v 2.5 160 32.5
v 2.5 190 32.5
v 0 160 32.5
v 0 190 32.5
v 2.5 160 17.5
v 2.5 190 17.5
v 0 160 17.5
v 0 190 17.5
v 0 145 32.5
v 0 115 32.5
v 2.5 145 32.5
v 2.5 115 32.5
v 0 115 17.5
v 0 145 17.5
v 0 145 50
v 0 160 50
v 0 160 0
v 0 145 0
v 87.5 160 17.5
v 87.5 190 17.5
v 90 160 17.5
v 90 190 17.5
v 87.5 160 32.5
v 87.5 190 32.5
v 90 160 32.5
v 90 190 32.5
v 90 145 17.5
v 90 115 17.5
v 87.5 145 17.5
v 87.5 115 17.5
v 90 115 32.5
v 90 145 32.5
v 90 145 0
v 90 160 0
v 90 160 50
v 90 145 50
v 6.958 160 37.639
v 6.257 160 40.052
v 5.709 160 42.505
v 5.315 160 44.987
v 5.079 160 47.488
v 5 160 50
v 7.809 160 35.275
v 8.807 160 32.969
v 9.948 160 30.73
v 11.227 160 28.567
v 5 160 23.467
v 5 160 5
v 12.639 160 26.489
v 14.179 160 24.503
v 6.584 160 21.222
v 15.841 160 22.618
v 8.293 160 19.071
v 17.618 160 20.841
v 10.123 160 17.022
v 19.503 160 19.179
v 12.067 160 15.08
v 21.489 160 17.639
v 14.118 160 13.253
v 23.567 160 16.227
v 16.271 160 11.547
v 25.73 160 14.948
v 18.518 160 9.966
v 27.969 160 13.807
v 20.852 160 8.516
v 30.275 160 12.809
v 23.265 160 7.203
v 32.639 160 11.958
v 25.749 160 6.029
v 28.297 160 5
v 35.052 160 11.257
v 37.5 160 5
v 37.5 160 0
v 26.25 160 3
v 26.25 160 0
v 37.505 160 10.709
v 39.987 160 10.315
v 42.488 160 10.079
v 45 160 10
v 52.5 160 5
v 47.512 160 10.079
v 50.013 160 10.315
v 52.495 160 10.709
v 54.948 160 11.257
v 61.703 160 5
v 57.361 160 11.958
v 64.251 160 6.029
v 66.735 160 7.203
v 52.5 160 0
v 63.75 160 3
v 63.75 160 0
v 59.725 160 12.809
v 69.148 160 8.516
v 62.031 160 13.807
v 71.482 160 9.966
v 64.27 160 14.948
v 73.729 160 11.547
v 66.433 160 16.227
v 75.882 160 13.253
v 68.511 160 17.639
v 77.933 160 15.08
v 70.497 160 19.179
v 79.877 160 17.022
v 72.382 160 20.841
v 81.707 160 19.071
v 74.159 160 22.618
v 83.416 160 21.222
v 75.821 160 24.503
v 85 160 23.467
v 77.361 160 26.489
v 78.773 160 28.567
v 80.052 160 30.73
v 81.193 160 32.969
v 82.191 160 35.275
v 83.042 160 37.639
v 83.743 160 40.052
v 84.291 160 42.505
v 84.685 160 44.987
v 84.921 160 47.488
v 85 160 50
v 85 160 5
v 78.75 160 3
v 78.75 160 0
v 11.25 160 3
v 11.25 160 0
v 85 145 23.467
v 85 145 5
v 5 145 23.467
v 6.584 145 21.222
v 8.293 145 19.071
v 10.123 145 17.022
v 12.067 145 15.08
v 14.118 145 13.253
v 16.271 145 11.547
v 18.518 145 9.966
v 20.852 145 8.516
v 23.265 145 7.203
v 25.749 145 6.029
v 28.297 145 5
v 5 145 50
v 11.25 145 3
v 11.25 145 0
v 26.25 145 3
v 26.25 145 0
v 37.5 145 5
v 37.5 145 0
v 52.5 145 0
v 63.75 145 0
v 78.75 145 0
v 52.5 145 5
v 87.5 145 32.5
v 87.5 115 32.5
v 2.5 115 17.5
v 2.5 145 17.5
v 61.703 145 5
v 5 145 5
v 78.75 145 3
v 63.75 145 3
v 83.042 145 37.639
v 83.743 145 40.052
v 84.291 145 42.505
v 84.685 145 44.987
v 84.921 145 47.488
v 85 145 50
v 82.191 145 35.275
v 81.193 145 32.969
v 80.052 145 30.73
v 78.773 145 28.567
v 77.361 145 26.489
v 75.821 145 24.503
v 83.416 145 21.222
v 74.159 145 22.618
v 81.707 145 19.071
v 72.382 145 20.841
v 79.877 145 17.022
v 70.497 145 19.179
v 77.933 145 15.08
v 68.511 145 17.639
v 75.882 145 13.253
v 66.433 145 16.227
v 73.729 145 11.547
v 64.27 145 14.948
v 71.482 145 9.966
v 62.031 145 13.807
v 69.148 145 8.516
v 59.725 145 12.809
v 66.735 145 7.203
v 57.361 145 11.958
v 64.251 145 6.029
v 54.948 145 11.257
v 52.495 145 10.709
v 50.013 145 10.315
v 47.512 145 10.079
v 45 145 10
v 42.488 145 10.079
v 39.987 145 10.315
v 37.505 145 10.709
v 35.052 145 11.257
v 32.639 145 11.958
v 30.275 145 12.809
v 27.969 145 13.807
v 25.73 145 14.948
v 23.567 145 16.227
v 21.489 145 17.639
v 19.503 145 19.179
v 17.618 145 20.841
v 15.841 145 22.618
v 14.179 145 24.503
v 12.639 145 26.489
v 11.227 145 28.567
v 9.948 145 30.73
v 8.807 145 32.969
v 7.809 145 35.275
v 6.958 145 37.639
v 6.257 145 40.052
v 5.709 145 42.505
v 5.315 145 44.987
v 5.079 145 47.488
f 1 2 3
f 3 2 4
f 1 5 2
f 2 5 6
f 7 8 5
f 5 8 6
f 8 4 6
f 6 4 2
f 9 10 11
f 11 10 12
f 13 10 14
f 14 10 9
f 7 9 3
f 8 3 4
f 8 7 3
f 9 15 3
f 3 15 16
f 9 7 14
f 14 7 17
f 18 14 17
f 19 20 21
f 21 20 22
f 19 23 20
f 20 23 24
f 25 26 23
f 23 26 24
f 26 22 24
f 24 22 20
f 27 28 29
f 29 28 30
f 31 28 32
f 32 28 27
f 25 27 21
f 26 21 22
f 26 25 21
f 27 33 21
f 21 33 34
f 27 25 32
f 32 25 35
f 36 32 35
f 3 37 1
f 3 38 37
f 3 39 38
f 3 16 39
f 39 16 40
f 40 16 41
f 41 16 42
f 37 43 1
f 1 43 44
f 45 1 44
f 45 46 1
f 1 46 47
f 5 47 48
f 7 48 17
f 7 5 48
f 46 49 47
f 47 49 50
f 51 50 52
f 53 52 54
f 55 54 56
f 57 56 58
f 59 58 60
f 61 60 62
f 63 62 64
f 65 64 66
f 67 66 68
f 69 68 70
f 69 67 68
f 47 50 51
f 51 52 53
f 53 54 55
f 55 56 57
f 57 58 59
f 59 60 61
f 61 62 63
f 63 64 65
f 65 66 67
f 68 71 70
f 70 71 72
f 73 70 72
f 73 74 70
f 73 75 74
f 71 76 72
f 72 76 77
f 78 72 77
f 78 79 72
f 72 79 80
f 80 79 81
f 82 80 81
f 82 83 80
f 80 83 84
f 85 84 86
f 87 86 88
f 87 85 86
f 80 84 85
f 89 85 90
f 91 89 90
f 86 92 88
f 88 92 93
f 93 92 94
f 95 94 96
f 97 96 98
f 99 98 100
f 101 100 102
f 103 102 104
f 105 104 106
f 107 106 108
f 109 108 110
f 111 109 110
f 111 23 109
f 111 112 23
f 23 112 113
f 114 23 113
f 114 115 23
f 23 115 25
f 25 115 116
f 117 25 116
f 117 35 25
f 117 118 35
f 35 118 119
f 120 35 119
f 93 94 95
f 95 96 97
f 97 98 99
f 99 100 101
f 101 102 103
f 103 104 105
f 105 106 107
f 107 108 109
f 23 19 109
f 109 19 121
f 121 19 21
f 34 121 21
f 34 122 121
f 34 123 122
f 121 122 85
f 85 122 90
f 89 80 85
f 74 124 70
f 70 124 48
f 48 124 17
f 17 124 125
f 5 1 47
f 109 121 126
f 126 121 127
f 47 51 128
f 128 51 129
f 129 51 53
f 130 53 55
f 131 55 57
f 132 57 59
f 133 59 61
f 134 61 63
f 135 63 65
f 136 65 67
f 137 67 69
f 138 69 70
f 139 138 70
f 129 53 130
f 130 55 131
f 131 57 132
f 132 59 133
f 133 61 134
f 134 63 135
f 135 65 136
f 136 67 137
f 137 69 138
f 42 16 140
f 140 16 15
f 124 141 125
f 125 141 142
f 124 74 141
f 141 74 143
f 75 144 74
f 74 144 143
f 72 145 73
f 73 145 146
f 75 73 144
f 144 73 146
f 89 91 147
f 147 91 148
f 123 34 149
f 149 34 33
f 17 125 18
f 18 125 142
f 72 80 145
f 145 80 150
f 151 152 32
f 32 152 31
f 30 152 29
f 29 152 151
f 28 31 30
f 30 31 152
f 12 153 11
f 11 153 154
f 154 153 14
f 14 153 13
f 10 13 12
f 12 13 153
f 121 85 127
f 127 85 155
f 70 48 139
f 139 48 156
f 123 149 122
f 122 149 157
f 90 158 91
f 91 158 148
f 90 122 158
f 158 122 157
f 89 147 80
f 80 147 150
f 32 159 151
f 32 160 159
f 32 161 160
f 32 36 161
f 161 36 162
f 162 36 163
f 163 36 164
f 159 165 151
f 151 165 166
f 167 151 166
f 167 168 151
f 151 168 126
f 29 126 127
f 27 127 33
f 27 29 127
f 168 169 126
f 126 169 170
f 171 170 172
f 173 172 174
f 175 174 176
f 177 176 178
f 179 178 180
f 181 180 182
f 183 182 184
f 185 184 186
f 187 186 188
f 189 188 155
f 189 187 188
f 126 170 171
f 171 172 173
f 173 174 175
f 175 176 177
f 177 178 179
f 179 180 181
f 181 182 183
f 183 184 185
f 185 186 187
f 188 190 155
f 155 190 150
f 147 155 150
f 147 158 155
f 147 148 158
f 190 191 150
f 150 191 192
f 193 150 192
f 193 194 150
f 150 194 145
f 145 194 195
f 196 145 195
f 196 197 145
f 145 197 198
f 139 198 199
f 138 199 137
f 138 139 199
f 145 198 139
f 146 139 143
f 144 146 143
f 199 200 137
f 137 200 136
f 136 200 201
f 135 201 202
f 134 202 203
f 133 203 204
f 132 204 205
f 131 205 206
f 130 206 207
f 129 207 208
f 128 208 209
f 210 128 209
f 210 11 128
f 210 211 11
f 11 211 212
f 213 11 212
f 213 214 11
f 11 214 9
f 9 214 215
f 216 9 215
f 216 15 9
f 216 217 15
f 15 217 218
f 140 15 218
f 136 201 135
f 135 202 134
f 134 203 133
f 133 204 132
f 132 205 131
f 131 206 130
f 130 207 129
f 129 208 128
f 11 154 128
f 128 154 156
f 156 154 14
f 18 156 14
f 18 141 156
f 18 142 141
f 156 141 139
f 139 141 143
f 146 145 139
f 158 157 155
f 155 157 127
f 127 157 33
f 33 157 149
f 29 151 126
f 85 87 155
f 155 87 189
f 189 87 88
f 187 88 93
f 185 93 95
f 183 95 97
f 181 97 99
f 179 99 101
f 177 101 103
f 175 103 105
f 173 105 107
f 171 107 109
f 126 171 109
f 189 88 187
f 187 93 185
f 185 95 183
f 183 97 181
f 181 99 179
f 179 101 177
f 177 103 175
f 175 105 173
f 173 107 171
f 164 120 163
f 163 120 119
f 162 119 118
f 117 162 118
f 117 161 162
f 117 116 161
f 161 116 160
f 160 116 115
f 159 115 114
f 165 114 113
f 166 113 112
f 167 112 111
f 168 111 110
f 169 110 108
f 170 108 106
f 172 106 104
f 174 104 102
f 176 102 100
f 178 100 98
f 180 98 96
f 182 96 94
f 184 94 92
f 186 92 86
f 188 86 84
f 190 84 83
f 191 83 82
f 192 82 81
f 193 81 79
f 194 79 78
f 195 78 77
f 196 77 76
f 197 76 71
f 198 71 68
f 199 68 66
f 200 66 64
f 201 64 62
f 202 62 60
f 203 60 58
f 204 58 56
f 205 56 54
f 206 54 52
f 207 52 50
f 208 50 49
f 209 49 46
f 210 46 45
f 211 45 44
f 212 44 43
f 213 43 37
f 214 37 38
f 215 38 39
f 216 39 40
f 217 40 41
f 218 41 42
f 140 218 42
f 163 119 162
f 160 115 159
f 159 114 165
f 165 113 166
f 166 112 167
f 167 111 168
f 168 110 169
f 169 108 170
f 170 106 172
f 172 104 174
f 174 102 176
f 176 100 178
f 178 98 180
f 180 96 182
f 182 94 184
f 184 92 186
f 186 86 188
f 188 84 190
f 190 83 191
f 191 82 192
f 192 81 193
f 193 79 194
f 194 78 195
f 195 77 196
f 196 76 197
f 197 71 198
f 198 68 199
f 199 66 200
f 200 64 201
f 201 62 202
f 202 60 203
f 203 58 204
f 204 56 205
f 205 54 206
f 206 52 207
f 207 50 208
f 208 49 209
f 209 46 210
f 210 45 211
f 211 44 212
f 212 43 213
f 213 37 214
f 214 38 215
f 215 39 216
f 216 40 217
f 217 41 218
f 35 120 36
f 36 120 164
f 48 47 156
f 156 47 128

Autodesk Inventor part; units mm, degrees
ref_plane "YZ Plane" through (0, 0, 0) normal (1, 0, 0) x (0, 1, 0)
ref_plane "XZ Plane" through (0, 0, 0) normal (0, 1, 0) x (-1, 0, 0)
ref_plane "XY Plane" through (0, 0, 0) normal (0, 0, 1) x (1, 0, 0)
sketch "スケッチ1" plane through (0, 0, 0) normal (0, 1, 0) x (-1, 0, 0)
  line L0 (0, 0) -> (-90, 0)
  line L1 (-90, 0) -> (-90, 50)
  line L2 (0, 50) -> (0, 0)
  line L3 (0, 0) -> (-5, 0)
  line L4 (-5, 0) -> (-5, 50)
  line L5 (-5, 0) -> (-90, 0)
  line L6 (-90, 0) -> (-85, 0)
  line L7 (-85, 0) -> (-85, 50)
  arc A0 (-85, 50) -> (-5, 50) centre (-45, 50) ccw
  line L8 (0, 0) -> (0, 10)
  line L9 (0, 10) -> (-90, 10)
  circle A1 centre (-45, 50) radius 45
  line L10 (-90, 5) -> (0, 5)
  line L11 (-90, 50) -> (-85, 50)
  line L12 (-5, 50) -> (0, 50)
  line L13 (0, 0) -> (-90, 0)
  line L14 (-90, 0) -> (-90, 5)
  line L15 (-90, 5) -> (0, 5)
  line L16 (0, 5) -> (0, 0)
  dimension "d0" = 90
  dimension "d1" = 50
  dimension "d2" = 5
  dimension "d3" = 85
  dimension "d4" = 5
  dimension "d5" = 80
  dimension "d6" = 10
  dimension "d7" = 90
extrude "押し出し1" add sketch "スケッチ1" along normal blind 230 contours L0 L4 L10 L2 | L0 L7 L10 L4 | L10 L4 L9 L2 | L0 L1 L10 L7 | L10 A1 L9 L4 | L9 L4 A1 L2 | L10 L1 L9 L7 | L7 L9 A1 L10 | L9 A1 L4 | A1 L9 | A1 L4 L12 | L9 L1 A1 L7 | L7 A1 L9 | A1 L9 A0 L4 | A1 L7 A0 L9 | L11 L7 A1
sketch "スケッチ2" plane through (0, 0, 0) normal (0, -1, 0) x (1, 0, 0)
  line L0 (0, 0) -> (0, 50) projected
  line L1 (90, 0) -> (0, 0) projected
  line L2 (90, 50) -> (90, 0) projected
  line L3 (85, 50) -> (90, 50) projected
  arc A0 (5, 50) -> (85, 50) centre (45, 50) ccw projected
  line L4 (0, 50) -> (5, 50) projected
  arc A1 (5, 23.467) -> (85, 23.467) centre (45, 50) ccw
  line L5 (0, 5) -> (90, 5)
  line L6 (5, 23.467) -> (5, 5)
  line L7 (85, 23.467) -> (85, 5)
  dimension "d29" = 48
extrude "押し出し2" cut sketch "スケッチ2" against normal blind 225 contours L6 A1 L5 | L5 A1 L7
sketch "スケッチ3" plane through (0, 230, 0) normal (0, 1, 0) x (1, 0, 0)
  arc A0 (85, -50) -> (5, -50) centre (45, -50) ccw projected
  line L0 (90, -50) -> (90, 0) projected
  line L1 (0, -50) -> (5, -50) projected
  arc A1 (85, -50) -> (5, -50) centre (45, -50) ccw
  line L2 (5, -50) -> (85, -50)
extrude "押し出し3" add sketch "スケッチ3" against normal blind 5
sketch "スケッチ4" plane through (90, 0, 50) normal (1, 0, 0) x (0, 0, -1)
  line L0 (0, 0) -> (50, 0) projected
  line L1 (0, 0) -> (0, 230) projected
  line L2 (25, 0) -> (25, 65)
  line L3 (25, 65) -> (25, 75)
  line L4 (25, 75) -> (25, 215)
  line L5 (25, 215) -> (25, 225)
  line L6 (0, 65) -> (40, 65)
  line L7 (40, 65) -> (40, 75)
  line L8 (40, 75) -> (0, 75)
  line L9 (0, 75) -> (0, 65)
  line L10 (0, 215) -> (40, 215)
  line L11 (40, 215) -> (40, 225)
  line L12 (40, 225) -> (0, 225)
  line L13 (0, 225) -> (0, 215)
  dimension "d16" = 65
  dimension "d17" = 10
  dimension "d18" = 140
  dimension "d19" = 10
  dimension "d20" = 40
extrude "押し出し4" cut sketch "スケッチ4" against normal blind 90 contours L1 L8 L3 L6 | L3 L8 L7 L6 | L1 L12 L5 L10 | L5 L12 L11 L10
sketch "スケッチ6" plane through (90, 0, 50) normal (1, 0, 0) x (0, 0, -1)
  line L0 (0, 230) -> (50, 230) projected
  line L1 (50, 230) -> (37.5, 251.6506)
  line L2 (50, 230) -> (110, 230) construction
  line L3 (0, 230) -> (37.5, 251.6506)
  line L4 (0, 230) -> (43.3013, 230) construction
  dimension "d32" = 120
  dimension "d33" = 30
extrude "押し出し6" add sketch "スケッチ6" against normal blind 90
sketch "スケッチ9" plane through (0, 0, 0) normal (-1, 0, 0) x (0, 0, 1)
  line L0 (10, 225) -> (50, 225) projected
  line L1 (50, 225) -> (50, 230) projected
  line L2 (50, 230) -> (12.5, 251.6506) projected
  line L3 (12.5, 251.6506) -> (0, 230) projected
  line L4 (0, 0) -> (0, 230) projected
  line L5 (0, 0) -> (50, 0) projected
  line L6 (50, 0) -> (50, 65) projected
  line L7 (50, 65) -> (10, 65) projected
  line L8 (10, 65) -> (10, 75) projected
  line L9 (10, 75) -> (50, 75) projected
  line L10 (50, 75) -> (50, 215) projected
  line L11 (50, 215) -> (10, 215) projected
  line L12 (10, 215) -> (10, 225) projected
  line L13 (12.5, 251.6506) -> (0, 230)
  line L14 (0, 230) -> (-132.7906, 0)
  line L15 (0, 145) -> (-49.0748, 145)
  line L16 (0, 115) -> (-66.3953, 115)
  dimension "d45" = 30
sketch "スケッチ10" plane through (0, 0, 0) normal (-1, 0, 0) x (0, 0, 1)
  line L0 (10, 225) -> (50, 225) projected
  line L1 (50, 225) -> (50, 230) projected
  line L2 (50, 230) -> (12.5, 251.6506) projected
  line L3 (12.5, 251.6506) -> (0, 230) projected
  line L4 (0, 0) -> (0, 230) projected
  line L5 (0, 0) -> (50, 0) projected
  line L6 (50, 0) -> (50, 65) projected
  line L7 (50, 65) -> (10, 65) projected
  line L8 (10, 65) -> (10, 75) projected
  line L9 (10, 75) -> (50, 75) projected
  line L10 (50, 75) -> (50, 215) projected
  line L11 (50, 215) -> (10, 215) projected
  line L12 (10, 215) -> (10, 225) projected
  line L13 (12.5, 251.6506) -> (-87.5, 78.4456)
  line L14 (-87.5, 78.4456) -> (50, 0)
sketch "スケッチ12" plane through (90, 0, 50) normal (1, 0, 0) x (0, 0, -1)
  line L0 (50, 0) -> (50, 230) projected
  line L1 (40, 225) -> (40, 215) projected
  line L2 (0, 215) -> (0, 75)
  line L3 (0, 145) -> (50, 145)
  line L4 (32.5, 175) -> (17.5, 175)
  line L5 (17.5, 175) -> (17.5, 115)
  line L6 (17.5, 115) -> (32.5, 115)
  line L7 (32.5, 115) -> (32.5, 175)
  line L8 (32.5, 175) -> (17.5, 115) construction
  line L9 (17.5, 175) -> (32.5, 115) construction
  line L10 (17.5, 145) -> (32.5, 145)
  line L11 (32.5, 145) -> (32.5, 115)
  line L12 (32.5, 115) -> (17.5, 115)
  line L13 (17.5, 115) -> (17.5, 145)
  point P0 (25, 145)
  dimension "d59" = 15
  dimension "d60" = 60
extrude "押し出し8" cut sketch "スケッチ12" against normal blind 2.5 contours L3 L7 L6 L5
sketch "スケッチ13" plane through (0, 0, 0) normal (-1, 0, 0) x (0, 0, 1)
  line L0 (0, 0) -> (0, 230) projected
  line L1 (50, 75) -> (50, 215) projected
  line L2 (50, 145) -> (0, 145)
  line L3 (17.5, 175) -> (32.5, 175)
  line L4 (32.5, 175) -> (32.5, 115)
  line L5 (32.5, 115) -> (17.5, 115)
  line L6 (17.5, 115) -> (17.5, 175)
  line L7 (17.5, 175) -> (32.5, 115) construction
  line L8 (32.5, 175) -> (17.5, 115) construction
  line L9 (17.5, 145) -> (32.5, 145)
  line L10 (32.5, 145) -> (32.5, 115)
  line L11 (32.5, 115) -> (17.5, 115)
  line L12 (17.5, 115) -> (17.5, 145)
  point P0 (25, 145)
  dimension "d63" = 15
  dimension "d64" = 60
extrude "押し出し9" cut sketch "スケッチ13" against normal blind 2.5 contours L4 L5 L6 L2
sketch "スケッチ14" plane through (90, 0, 0) normal (0, 0, -1) x (-1, 0, 0)
  line L0 (90, 0) -> (90, 230) projected
  line L1 (0, 0) -> (0, 230) projected
  line L2 (0, 145) -> (90, 145)
  line L3 (37.5, 170) -> (52.5, 170)
  line L4 (52.5, 170) -> (52.5, 120)
  line L5 (52.5, 120) -> (37.5, 120)
  line L6 (37.5, 120) -> (37.5, 170)
  line L7 (37.5, 170) -> (52.5, 120) construction
  line L8 (52.5, 170) -> (37.5, 120) construction
  line L9 (37.5, 145) -> (52.5, 145)
  line L10 (52.5, 145) -> (52.5, 170)
  line L11 (52.5, 170) -> (37.5, 170)
  line L12 (37.5, 170) -> (37.5, 145)
  point P0 (45, 145)
  dimension "d67" = 15
  dimension "d70" = 25
extrude "押し出し10" cut sketch "スケッチ14" against normal blind 5 contours L6 L3 L4 L2
sketch "スケッチ16" plane through (90, 0, 0) normal (0, 0, -1) x (-1, 0, 0)
  line L0 (52.5, 170) -> (52.5, 145) projected
  line L1 (52.5, 145) -> (37.5, 145) projected
  line L2 (37.5, 145) -> (37.5, 170) projected
  line L3 (90, 0) -> (90, 230) projected
  line L4 (0, 0) -> (0, 230) projected
  line L5 (0, 145) -> (90, 145)
  line L6 (0, 160) -> (37.5, 157.5)
  line L7 (52.5, 157.5) -> (90, 157.5)
  line L8 (18.75, 158.75) -> (18.75, 145)
  line L9 (71.25, 145) -> (71.25, 157.5)
  line L10 (11.25, 175) -> (26.25, 175)
  line L11 (26.25, 175) -> (26.25, 115)
  line L12 (26.25, 115) -> (11.25, 115)
  line L13 (11.25, 115) -> (11.25, 175)
  line L14 (11.25, 175) -> (26.25, 115) construction
  line L15 (26.25, 175) -> (11.25, 115) construction
  line L16 (11.25, 115) -> (26.25, 115)
  line L17 (26.25, 115) -> (26.25, 175)
  line L18 (26.25, 175) -> (11.25, 175)
  line L19 (11.25, 175) -> (11.25, 115)
  line L20 (45, 145) -> (45, 125)
  line L21 (78.75, 175) -> (63.75, 175)
  line L22 (63.75, 115) -> (78.75, 115)
  line L23 (78.75, 175) -> (78.75, 115)
  line L24 (63.75, 115) -> (63.75, 175)
  line L25 (63.75, 175) -> (78.75, 175)
  line L26 (78.75, 175) -> (78.75, 115)
  line L27 (78.75, 115) -> (63.75, 115)
  line L28 (63.75, 115) -> (63.75, 175)
  line L29 (11.25, 115) -> (26.25, 115)
  line L30 (26.25, 115) -> (26.25, 175)
  line L31 (26.25, 175) -> (11.25, 175)
  line L32 (11.25, 175) -> (11.25, 115)
  dimension "d71" = 15
  dimension "d72" = 60
  dimension "d73" = 20
extrude "押し出し11" cut sketch "スケッチ16" against normal blind 3 contours L24 L21 L23 L7 | L7 L9 L5 L24 | L5 L23 L22 L24 | L7 L23 L5 L9 | L11 L12 L13 L5 | L5 L8 L6 L11 | L6 L13 L10 L11 | L5 L13 L6 L8
sketch "スケッチ17" plane through (37.5, 145, 0) normal (0, 1, 0) x (1, 0, 0)
  line L0 (-57.7643, 16.522) -> (69.053, 16.522)
  line L1 (69.053, 16.522) -> (69.053, -65.9751)
  line L2 (69.053, -65.9751) -> (-57.7643, -65.9751)
  line L3 (-57.7643, -65.9751) -> (-57.7643, 16.522)
  point P0 (-37.5, 0)
extrude "押し出し12" cut sketch "スケッチ17" against normal blind 180
sketch "スケッチ18" plane through (0, 215, 10) normal (-1, 0, 0) x (0, 0, 1)
  line L0 (-10, -70) -> (40, -70) projected
  line L1 (7.5, -40) -> (22.5, -40)
  line L2 (22.5, -40) -> (22.5, -100)
  line L3 (22.5, -100) -> (7.5, -100)
  line L4 (7.5, -100) -> (7.5, -40)
  line L5 (7.5, -40) -> (22.5, -100) construction
  line L6 (22.5, -40) -> (7.5, -100) construction
  point P0 (-10, -215)
  point P1 (15, -70)
  dimension "d78" = 15
  dimension "d79" = 60
extrude "押し出し13" add sketch "スケッチ18" against normal blind 2.5
sketch "スケッチ19" plane through (90, 215, 10) normal (1, 0, 0) x (0, 0, -1)
  line L0 (-40, -70) -> (10, -70) projected
  line L1 (-22.5, -40) -> (-7.5, -40)
  line L2 (-7.5, -40) -> (-7.5, -100)
  line L3 (-7.5, -100) -> (-22.5, -100)
  line L4 (-22.5, -100) -> (-22.5, -40)
  line L5 (-22.5, -40) -> (-7.5, -100) construction
  line L6 (-7.5, -40) -> (-22.5, -100) construction
  point P0 (10, -215)
  point P1 (-15, -70)
  dimension "d82" = 15
  dimension "d83" = 60
extrude "押し出し14" add sketch "スケッチ19" against normal blind 2.5
sketch "スケッチ20" plane through (90, 230, 0) normal (0, 0.5, -0.866) x (-1, 0, 0)
  line L0 (0, 0) -> (0, 25) projected
  line L1 (0, 0) -> (90, 0) projected
  line L2 (90, 25) -> (90, 0) projected
  line L3 (0, 25) -> (90, 25) projected
  line L4 (0, 12.5) -> (90, 12.5)
  line L5 (45, 12.5) -> (45, 25)
  line L6 (45, 12.5) -> (45, 0)
  line L7 (22.5, 18.5) -> (67.5, 18.5)
  line L8 (67.5, 18.5) -> (67.5, 6.5)
  line L9 (67.5, 6.5) -> (22.5, 6.5)
  line L10 (22.5, 6.5) -> (22.5, 18.5)
  line L11 (22.5, 18.5) -> (67.5, 6.5) construction
  line L12 (67.5, 18.5) -> (22.5, 6.5) construction
  circle A0 centre (45, 6.5) radius 3
  circle A1 centre (67.5, 18.5) radius 3
  circle A2 centre (67.5, 6.5) radius 3
  circle A3 centre (22.5, 6.5) radius 3
  circle A4 centre (22.5, 18.5) radius 3
  circle A5 centre (45, 18.5) radius 3
  point P0 (90, -199.1858)
  dimension "d86" = 45
  dimension "d87" = 6
  dimension "d89" = 6
  dimension "d90" = 6
  dimension "d91" = 6
  dimension "d92" = 6
  dimension "d93" = 6
  dimension "d94" = 6
extrude "押し出し15" add sketch "スケッチ20" along normal blind 5 contours A0 L9 L6 | L6 L9 A0 | A3 L9 L10 | L10 L9 A3 | A4 L7 L10 | L10 L7 A4 | L9 A0 L6 | L6 A0 L9 | A5 L7 L5 | L5 L7 A5 | A5 L7 L5 | L5 L7 A5 | A2 L8 L9 | L9 L8 A2 | A1 L7 L8 | L8 L7 A1
ref_plane "作業平面2" through (45, 160, 50) normal (0, -1, 0) x (1, 0, 0)
sketch "スケッチ21" plane through (45, 160, 50) normal (0, -1, 0) x (1, 0, 0)
  line L0 (-52.9668, 19.8142) -> (54.3752, 19.8142)
  line L1 (54.3752, 19.8142) -> (54.3752, -61.5309)
  line L2 (54.3752, -61.5309) -> (-52.9668, -61.5309)
  line L3 (-52.9668, -61.5309) -> (-52.9668, 19.8142)
  line L4 (-52.9668, 19.8142) -> (54.3752, -61.5309) construction
  line L5 (54.3752, 19.8142) -> (-52.9668, -61.5309) construction
  point P0 (-45, -50)
  point P1 (0.7042, -20.8583)
extrude "押し出し16" cut sketch "スケッチ21" against normal blind 150
sketch "スケッチ22" plane through (90, 115, 32.5) normal (1, 0, 0) x (0, 0, -1)
  line L0 (32.5, 45) -> (-17.5, 45) projected
  line L1 (15, 30) -> (15, 0) projected
  line L2 (0, 75) -> (15, 75)
  line L3 (15, 75) -> (15, 15)
  line L4 (15, 15) -> (0, 15)
  line L5 (0, 15) -> (0, 75)
  line L6 (0, 75) -> (15, 15) construction
  line L7 (15, 75) -> (0, 15) construction
  point P0 (32.5, -115)
  point P1 (7.5, 45)
extrude "押し出し17" add sketch "スケッチ22" against normal blind 2.5
sketch "スケッチ23" plane through (0, 115, 17.5) normal (-1, 0, 0) x (0, 0, 1)
  line L0 (32.5, 45) -> (-17.5, 45) projected
  line L1 (15, 30) -> (15, 0) projected
  line L2 (0, 75) -> (15, 75)
  line L3 (15, 75) -> (15, 15)
  line L4 (15, 15) -> (0, 15)
  line L5 (0, 15) -> (0, 75)
  line L6 (0, 75) -> (15, 15) construction
  line L7 (15, 75) -> (0, 15) construction
  point P0 (-17.5, -115)
  point P1 (7.5, 45)
extrude "押し出し18" add sketch "スケッチ23" against normal blind 2.5
properties part number "知能ロボコン発射台２.112" material "ABS プラスチック"
